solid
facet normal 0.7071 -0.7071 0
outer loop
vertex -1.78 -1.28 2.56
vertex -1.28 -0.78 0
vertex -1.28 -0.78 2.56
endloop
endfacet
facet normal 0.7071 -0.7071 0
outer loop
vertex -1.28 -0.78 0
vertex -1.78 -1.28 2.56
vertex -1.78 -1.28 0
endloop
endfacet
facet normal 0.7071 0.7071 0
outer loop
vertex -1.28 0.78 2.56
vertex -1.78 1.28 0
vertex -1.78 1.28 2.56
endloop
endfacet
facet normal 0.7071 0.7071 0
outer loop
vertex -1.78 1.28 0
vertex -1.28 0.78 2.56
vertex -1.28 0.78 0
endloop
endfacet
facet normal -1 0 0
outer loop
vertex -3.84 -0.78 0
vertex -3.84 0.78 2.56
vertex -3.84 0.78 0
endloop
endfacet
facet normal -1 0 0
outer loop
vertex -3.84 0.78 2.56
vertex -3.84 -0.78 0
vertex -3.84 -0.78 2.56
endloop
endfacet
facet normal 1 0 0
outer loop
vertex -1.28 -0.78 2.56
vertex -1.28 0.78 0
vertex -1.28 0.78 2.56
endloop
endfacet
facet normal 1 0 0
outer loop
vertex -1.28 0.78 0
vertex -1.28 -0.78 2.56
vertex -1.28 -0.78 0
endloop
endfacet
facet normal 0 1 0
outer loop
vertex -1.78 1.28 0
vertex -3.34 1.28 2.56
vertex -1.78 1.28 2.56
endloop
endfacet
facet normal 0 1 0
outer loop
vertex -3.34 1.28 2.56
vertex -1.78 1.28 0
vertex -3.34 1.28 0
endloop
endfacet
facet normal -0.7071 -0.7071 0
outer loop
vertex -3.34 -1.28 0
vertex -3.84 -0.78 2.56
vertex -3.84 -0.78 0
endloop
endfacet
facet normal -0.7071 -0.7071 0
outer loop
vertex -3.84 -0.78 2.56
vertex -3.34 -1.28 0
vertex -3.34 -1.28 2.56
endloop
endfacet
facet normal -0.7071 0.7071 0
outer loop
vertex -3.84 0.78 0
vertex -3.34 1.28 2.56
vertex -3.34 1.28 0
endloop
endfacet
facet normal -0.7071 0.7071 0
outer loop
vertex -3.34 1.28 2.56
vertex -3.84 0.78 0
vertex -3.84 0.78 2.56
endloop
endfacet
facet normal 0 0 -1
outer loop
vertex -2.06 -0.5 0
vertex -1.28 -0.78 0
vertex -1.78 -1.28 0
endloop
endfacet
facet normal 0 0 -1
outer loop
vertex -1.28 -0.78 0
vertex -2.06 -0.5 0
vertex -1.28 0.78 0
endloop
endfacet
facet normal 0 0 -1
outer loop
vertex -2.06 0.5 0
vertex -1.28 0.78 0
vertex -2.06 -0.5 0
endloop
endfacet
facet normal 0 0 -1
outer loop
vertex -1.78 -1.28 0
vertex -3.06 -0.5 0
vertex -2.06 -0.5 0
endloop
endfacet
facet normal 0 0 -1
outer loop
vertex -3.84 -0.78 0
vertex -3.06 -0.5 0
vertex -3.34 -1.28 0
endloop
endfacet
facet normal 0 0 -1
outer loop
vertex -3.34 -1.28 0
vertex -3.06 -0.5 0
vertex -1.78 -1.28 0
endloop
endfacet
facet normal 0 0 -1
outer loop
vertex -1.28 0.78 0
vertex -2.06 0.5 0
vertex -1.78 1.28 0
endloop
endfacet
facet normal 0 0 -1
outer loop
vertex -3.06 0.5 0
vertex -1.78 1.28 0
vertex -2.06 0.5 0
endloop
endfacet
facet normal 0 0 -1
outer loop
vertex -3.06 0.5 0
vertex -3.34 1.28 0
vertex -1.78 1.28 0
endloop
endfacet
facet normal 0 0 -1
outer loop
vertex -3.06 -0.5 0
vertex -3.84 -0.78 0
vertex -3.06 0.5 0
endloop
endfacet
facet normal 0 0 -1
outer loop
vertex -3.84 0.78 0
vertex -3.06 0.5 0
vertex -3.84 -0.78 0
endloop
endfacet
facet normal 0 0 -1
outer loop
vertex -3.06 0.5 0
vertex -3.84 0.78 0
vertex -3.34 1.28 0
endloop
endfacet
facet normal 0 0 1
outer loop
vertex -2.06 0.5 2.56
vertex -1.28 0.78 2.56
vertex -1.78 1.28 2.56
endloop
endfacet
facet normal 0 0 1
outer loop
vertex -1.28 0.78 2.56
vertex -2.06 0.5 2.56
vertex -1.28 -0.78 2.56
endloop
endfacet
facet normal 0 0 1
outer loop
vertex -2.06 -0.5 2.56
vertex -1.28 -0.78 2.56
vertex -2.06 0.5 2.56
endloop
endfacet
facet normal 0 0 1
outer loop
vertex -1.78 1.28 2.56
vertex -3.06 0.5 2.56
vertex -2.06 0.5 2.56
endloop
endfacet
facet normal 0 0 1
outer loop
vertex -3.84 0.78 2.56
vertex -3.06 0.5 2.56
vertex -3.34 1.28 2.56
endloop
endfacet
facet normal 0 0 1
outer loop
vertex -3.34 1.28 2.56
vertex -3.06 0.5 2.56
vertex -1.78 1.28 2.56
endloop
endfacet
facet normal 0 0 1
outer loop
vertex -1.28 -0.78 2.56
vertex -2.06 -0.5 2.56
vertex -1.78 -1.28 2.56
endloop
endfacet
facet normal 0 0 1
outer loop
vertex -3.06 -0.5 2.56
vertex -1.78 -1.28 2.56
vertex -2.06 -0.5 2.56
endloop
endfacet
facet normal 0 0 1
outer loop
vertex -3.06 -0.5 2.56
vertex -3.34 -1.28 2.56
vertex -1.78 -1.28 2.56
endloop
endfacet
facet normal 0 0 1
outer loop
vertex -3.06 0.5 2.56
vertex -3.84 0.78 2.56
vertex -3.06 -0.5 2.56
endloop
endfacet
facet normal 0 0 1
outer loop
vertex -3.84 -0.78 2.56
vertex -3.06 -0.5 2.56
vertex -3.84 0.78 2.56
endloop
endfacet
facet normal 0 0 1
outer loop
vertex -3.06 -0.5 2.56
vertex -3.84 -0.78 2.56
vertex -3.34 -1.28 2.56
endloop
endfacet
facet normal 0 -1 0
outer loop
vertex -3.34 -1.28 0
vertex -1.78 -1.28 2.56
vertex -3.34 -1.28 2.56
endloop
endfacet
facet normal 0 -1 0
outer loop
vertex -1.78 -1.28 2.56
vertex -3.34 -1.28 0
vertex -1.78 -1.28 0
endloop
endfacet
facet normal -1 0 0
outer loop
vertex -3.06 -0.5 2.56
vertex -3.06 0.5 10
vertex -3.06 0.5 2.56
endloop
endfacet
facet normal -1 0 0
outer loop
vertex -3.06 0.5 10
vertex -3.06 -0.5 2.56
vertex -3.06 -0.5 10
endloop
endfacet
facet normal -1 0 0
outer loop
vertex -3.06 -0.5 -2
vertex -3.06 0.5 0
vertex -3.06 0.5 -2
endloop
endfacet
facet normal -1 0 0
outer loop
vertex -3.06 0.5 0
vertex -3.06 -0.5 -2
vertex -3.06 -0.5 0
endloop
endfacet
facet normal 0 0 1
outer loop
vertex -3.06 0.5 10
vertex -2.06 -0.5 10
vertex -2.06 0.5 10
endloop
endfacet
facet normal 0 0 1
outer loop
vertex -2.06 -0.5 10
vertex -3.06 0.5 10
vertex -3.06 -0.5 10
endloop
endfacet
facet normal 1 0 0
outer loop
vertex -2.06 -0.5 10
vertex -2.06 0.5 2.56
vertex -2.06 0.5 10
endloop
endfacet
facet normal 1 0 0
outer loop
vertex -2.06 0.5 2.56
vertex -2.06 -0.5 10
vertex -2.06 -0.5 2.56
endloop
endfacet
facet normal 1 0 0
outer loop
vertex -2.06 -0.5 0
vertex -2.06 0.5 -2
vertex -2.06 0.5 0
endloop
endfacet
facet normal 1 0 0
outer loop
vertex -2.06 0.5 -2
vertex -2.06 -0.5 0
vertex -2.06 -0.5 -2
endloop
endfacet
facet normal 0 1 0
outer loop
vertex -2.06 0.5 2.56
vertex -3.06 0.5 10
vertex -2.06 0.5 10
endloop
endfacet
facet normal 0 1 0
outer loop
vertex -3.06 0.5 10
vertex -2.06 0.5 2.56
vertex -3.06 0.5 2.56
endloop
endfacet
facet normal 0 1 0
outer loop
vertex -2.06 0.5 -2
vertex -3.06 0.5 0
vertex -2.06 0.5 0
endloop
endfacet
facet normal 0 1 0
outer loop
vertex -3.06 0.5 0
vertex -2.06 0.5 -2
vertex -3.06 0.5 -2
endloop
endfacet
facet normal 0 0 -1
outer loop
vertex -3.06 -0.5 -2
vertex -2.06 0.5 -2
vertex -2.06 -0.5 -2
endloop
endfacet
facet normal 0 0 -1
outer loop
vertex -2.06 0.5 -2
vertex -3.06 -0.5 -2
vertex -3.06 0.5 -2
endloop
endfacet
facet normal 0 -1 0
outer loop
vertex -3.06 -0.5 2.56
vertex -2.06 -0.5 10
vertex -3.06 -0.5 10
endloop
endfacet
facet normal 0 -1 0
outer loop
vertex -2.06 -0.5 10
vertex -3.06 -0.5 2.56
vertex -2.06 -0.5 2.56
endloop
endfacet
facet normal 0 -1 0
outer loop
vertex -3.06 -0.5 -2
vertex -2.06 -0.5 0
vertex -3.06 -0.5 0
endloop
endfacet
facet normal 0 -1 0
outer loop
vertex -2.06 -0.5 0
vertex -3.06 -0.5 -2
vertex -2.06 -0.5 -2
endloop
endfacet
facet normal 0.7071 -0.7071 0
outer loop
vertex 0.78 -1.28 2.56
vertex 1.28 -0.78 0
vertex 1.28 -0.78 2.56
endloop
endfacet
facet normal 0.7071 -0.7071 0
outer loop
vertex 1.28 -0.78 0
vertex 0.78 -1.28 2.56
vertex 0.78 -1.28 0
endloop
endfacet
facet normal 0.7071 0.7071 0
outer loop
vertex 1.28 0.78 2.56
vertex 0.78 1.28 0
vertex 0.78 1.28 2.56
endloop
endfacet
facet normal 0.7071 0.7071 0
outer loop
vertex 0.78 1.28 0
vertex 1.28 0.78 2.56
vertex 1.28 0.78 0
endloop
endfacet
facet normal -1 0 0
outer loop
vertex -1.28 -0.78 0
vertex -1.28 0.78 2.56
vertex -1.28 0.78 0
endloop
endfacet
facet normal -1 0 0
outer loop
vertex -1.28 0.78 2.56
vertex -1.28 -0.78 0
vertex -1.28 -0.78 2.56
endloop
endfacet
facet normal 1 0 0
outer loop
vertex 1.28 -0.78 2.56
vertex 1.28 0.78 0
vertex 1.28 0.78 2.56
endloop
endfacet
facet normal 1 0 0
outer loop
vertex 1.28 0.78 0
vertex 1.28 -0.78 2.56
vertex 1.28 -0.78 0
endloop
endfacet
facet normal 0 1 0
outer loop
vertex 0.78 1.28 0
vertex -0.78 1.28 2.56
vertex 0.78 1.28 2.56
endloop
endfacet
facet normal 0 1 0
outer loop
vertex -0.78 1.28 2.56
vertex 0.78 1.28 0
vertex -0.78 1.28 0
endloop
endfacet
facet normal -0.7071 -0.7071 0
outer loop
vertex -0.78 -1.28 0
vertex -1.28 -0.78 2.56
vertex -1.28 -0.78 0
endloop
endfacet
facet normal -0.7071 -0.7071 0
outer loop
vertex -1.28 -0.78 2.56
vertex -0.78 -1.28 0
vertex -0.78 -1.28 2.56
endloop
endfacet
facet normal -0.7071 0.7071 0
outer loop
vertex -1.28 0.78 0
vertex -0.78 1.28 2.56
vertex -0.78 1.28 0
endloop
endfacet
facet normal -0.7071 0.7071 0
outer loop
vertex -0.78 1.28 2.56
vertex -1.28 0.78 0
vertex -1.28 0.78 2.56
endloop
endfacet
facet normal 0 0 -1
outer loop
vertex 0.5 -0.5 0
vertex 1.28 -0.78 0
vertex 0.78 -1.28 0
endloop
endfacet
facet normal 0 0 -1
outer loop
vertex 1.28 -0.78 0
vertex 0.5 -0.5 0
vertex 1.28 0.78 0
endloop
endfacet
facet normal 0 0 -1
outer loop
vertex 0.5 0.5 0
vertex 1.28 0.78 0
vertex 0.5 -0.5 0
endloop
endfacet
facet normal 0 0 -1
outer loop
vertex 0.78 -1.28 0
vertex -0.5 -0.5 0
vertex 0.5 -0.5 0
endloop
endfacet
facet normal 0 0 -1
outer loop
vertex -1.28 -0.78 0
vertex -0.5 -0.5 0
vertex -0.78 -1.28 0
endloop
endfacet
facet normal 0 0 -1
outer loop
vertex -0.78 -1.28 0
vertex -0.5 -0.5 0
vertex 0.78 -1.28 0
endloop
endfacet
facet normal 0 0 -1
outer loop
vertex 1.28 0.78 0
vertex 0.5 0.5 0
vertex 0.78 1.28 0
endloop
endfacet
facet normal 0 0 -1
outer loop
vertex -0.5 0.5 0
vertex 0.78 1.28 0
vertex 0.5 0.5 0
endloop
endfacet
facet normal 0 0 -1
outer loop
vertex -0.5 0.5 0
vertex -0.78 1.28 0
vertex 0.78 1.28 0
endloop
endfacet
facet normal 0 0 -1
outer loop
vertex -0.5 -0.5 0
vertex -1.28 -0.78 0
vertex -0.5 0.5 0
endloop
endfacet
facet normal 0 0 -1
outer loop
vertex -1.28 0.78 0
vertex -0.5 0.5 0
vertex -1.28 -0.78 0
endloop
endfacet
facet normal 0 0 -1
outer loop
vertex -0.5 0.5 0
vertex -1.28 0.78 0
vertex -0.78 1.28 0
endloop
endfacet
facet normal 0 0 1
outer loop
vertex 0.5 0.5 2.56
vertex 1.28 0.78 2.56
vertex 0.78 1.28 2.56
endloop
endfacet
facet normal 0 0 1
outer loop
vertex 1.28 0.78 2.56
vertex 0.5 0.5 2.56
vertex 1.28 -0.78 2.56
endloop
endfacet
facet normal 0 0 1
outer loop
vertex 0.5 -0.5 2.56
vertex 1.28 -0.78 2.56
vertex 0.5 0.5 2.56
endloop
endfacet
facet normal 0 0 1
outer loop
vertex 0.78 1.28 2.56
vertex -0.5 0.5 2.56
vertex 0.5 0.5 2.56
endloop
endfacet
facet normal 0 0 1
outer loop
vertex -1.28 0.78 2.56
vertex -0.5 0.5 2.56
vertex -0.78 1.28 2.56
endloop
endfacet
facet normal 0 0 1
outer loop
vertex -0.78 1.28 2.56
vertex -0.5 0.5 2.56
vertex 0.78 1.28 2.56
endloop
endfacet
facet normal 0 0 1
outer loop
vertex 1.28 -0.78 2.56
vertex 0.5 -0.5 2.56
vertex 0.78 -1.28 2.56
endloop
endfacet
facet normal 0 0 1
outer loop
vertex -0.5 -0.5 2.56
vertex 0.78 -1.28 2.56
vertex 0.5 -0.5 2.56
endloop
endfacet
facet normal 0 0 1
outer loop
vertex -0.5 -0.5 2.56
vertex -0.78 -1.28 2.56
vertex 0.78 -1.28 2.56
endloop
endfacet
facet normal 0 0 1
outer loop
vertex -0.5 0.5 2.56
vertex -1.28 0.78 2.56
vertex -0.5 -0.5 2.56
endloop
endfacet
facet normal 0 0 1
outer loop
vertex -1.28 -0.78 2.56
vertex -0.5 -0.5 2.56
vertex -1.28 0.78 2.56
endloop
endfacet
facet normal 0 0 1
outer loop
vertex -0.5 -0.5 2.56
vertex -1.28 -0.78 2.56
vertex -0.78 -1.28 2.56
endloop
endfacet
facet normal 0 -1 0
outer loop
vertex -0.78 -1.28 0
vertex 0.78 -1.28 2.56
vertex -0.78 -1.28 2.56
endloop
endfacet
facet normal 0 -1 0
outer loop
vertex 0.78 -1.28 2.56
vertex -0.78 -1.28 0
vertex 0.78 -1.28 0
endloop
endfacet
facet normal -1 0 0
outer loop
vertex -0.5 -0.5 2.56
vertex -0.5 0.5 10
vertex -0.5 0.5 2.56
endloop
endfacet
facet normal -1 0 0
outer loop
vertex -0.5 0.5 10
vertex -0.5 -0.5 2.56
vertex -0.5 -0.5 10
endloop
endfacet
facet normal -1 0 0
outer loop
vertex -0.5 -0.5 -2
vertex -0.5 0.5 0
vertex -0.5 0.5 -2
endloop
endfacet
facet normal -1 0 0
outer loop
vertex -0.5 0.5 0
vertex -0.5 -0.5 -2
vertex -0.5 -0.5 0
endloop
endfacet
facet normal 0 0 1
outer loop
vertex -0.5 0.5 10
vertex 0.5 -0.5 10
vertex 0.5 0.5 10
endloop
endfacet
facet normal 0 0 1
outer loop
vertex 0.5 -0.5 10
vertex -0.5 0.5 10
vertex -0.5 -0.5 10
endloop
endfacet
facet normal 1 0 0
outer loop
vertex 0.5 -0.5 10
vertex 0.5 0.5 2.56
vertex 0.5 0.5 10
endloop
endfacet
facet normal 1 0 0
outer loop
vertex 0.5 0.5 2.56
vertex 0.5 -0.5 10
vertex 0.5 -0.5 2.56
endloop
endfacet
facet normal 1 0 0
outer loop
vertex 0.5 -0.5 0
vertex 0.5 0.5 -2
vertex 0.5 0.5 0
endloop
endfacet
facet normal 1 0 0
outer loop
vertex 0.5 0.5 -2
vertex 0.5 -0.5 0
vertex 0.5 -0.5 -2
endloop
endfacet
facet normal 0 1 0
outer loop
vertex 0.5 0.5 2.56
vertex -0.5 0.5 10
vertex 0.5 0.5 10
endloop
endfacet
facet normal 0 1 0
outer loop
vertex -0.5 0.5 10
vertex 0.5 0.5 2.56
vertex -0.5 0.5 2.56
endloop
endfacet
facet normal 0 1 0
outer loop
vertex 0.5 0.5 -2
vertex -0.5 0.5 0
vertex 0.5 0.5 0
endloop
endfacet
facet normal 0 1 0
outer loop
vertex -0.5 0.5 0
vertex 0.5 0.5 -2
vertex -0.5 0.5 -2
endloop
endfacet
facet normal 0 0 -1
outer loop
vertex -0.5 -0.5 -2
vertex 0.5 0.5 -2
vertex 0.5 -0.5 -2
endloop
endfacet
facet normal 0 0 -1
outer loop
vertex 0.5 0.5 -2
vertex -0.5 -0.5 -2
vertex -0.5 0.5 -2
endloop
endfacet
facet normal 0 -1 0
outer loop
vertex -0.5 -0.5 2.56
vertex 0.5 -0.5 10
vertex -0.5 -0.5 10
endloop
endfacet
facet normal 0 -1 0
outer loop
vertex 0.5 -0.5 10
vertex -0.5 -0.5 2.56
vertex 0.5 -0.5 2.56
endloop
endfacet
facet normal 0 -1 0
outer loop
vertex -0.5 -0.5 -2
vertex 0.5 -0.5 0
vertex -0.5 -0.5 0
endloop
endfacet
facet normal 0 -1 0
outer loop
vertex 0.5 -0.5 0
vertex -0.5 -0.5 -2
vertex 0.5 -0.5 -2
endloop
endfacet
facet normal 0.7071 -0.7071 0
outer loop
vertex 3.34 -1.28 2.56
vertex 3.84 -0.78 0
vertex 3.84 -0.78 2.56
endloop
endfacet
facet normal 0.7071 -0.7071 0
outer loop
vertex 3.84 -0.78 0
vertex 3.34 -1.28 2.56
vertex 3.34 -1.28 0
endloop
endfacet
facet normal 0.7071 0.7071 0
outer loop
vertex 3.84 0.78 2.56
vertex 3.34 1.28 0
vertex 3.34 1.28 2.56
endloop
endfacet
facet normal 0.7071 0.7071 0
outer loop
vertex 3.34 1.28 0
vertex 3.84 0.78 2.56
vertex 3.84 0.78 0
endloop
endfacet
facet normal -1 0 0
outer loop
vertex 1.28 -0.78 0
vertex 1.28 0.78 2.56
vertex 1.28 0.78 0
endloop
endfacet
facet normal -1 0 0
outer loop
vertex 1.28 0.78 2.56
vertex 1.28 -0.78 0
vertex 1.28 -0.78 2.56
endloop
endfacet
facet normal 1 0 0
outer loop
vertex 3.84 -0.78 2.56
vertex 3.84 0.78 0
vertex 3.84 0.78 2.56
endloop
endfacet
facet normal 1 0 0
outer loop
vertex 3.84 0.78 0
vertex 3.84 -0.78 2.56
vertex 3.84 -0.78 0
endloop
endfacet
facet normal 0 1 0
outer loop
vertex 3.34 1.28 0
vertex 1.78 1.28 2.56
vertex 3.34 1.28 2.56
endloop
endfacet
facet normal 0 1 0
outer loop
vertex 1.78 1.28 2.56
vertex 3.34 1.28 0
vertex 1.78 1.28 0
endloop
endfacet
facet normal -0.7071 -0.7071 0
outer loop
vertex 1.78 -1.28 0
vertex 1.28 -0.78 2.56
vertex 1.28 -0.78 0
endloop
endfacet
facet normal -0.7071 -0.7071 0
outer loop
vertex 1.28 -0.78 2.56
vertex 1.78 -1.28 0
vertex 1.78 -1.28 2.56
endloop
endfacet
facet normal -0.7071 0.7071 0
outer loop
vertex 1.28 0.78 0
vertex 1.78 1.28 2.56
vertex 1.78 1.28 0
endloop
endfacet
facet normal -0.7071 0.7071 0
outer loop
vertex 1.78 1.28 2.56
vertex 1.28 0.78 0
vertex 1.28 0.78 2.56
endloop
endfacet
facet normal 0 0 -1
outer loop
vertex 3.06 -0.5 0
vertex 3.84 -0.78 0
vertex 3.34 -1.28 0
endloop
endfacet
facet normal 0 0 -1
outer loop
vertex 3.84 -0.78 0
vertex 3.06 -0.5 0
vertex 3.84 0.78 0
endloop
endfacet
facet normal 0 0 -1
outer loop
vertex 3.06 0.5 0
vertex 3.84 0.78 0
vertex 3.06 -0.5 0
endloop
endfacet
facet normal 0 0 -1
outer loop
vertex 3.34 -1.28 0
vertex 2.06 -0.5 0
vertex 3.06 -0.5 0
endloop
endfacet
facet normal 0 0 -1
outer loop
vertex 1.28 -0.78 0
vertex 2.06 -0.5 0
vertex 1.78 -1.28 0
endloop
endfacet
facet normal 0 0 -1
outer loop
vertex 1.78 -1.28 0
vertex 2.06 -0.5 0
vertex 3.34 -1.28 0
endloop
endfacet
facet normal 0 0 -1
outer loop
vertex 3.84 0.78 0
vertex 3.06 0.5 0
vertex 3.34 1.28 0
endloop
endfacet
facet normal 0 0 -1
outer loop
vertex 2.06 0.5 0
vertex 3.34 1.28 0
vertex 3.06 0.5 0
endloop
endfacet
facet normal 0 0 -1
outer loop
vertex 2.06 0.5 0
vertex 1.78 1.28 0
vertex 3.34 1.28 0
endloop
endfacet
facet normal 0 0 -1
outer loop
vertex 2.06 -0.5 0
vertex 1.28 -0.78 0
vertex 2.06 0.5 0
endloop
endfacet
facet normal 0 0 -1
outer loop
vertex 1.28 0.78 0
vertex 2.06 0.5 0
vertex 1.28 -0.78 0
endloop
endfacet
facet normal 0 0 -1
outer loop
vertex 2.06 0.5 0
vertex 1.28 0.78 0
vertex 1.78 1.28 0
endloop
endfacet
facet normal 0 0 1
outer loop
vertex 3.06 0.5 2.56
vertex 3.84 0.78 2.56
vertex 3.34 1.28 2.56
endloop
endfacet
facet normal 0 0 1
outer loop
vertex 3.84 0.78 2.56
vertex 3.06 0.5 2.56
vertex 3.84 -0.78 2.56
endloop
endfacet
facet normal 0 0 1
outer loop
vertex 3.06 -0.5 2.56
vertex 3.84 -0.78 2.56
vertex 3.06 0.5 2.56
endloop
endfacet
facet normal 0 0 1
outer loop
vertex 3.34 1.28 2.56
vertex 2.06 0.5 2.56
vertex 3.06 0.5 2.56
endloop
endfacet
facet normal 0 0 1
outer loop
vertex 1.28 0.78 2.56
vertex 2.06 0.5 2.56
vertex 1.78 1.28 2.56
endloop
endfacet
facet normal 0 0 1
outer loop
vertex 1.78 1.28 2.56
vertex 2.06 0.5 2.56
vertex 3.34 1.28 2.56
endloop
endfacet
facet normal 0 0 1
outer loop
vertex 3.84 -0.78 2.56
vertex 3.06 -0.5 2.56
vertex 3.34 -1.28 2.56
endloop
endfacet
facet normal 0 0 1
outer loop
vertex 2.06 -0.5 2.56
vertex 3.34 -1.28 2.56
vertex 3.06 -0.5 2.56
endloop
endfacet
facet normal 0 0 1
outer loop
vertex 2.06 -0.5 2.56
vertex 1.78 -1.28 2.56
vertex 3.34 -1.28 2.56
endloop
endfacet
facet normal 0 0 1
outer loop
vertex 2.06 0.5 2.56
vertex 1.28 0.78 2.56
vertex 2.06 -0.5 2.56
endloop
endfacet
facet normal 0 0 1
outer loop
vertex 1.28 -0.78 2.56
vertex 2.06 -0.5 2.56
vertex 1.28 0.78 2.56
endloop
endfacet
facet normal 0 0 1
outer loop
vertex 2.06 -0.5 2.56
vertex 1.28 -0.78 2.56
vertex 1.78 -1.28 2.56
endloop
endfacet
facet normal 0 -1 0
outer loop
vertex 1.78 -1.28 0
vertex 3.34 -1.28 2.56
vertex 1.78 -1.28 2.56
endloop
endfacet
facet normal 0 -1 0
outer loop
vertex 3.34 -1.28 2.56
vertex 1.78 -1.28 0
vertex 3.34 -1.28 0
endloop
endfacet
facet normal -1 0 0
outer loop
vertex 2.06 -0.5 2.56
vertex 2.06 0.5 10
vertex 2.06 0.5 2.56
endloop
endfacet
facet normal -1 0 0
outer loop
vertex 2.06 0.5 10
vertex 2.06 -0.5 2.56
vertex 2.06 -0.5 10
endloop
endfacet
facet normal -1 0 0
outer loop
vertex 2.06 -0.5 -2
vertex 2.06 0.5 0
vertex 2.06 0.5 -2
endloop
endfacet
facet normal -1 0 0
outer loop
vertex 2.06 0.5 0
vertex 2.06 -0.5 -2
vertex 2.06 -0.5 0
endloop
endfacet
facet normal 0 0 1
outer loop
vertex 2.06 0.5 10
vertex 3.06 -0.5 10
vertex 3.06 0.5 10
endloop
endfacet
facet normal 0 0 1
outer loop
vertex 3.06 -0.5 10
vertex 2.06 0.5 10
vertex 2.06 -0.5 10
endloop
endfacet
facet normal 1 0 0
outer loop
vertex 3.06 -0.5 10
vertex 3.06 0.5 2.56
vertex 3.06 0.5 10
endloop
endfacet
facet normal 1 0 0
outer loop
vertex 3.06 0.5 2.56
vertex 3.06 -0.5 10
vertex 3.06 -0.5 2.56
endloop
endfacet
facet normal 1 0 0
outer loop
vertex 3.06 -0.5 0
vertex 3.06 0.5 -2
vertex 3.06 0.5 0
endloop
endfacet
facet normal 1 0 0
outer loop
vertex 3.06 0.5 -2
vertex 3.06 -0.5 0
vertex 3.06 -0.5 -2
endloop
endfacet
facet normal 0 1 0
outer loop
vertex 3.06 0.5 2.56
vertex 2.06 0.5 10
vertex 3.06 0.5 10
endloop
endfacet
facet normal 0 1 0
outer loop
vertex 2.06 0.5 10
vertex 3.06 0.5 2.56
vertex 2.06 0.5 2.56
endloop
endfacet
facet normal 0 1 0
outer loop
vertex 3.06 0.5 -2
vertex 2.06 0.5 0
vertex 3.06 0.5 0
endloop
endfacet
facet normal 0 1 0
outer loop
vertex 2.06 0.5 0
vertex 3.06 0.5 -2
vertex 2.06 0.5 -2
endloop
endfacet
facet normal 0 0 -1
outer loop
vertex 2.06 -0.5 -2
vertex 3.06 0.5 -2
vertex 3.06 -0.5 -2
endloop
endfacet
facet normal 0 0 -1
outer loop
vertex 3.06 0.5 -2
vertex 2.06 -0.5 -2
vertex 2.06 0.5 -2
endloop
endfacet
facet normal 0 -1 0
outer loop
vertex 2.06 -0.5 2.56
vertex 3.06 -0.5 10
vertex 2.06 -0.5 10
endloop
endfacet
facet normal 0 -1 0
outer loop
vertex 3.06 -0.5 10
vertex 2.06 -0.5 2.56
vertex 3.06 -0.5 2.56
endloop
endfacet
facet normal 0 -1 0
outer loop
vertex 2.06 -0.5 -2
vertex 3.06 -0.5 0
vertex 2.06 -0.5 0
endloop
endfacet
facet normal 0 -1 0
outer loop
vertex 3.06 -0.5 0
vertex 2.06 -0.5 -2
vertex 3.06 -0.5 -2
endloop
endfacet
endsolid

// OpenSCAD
// file: openscad/pinheader.scad
module pinheader(black_size=2.56, pin_height=10, pin_count=1)
{
    for (i = [0:pin_count-1]) {
        translate([(i-(pin_count-1)/2)*black_size, 0, 0]) pinheader_1(black_size, pin_height);
    }
}

module pinheader_1(black_size=2.56, pin_height=10)
{
    // Black plastic
    black_w = black_size;
    black_d = black_size;
    black_h = black_size;
    black_cut = 0.5;
    
    black_points = [ [black_cut, 0],
                     [black_w - black_cut, 0],
                     [black_w, black_cut],
                     [black_w, black_d - black_cut],
                     [black_w - black_cut, black_d],
                     [black_cut, black_d],
                     [0, black_d - black_cut],
                     [0, black_cut] ];
    
    color("DarkSlateGray") translate([-black_size/2, -black_size/2, 0]) linear_extrude(black_h) polygon(black_points);
    
    // Metallic part
    pin_w = 1;
    pin_d = 1;
    pin_low_part = 2;
    
    color("Gold") translate([-pin_w/2, -pin_d/2, -pin_low_part]) cube([pin_w, pin_d, pin_height + pin_low_part]);
}
// main file
include <openscad/pinheader.scad>

pin_width  = 2.56;
pin_height = 10;
pin_count  = 3;

pinheader(pin_width, pin_height, pin_count);
